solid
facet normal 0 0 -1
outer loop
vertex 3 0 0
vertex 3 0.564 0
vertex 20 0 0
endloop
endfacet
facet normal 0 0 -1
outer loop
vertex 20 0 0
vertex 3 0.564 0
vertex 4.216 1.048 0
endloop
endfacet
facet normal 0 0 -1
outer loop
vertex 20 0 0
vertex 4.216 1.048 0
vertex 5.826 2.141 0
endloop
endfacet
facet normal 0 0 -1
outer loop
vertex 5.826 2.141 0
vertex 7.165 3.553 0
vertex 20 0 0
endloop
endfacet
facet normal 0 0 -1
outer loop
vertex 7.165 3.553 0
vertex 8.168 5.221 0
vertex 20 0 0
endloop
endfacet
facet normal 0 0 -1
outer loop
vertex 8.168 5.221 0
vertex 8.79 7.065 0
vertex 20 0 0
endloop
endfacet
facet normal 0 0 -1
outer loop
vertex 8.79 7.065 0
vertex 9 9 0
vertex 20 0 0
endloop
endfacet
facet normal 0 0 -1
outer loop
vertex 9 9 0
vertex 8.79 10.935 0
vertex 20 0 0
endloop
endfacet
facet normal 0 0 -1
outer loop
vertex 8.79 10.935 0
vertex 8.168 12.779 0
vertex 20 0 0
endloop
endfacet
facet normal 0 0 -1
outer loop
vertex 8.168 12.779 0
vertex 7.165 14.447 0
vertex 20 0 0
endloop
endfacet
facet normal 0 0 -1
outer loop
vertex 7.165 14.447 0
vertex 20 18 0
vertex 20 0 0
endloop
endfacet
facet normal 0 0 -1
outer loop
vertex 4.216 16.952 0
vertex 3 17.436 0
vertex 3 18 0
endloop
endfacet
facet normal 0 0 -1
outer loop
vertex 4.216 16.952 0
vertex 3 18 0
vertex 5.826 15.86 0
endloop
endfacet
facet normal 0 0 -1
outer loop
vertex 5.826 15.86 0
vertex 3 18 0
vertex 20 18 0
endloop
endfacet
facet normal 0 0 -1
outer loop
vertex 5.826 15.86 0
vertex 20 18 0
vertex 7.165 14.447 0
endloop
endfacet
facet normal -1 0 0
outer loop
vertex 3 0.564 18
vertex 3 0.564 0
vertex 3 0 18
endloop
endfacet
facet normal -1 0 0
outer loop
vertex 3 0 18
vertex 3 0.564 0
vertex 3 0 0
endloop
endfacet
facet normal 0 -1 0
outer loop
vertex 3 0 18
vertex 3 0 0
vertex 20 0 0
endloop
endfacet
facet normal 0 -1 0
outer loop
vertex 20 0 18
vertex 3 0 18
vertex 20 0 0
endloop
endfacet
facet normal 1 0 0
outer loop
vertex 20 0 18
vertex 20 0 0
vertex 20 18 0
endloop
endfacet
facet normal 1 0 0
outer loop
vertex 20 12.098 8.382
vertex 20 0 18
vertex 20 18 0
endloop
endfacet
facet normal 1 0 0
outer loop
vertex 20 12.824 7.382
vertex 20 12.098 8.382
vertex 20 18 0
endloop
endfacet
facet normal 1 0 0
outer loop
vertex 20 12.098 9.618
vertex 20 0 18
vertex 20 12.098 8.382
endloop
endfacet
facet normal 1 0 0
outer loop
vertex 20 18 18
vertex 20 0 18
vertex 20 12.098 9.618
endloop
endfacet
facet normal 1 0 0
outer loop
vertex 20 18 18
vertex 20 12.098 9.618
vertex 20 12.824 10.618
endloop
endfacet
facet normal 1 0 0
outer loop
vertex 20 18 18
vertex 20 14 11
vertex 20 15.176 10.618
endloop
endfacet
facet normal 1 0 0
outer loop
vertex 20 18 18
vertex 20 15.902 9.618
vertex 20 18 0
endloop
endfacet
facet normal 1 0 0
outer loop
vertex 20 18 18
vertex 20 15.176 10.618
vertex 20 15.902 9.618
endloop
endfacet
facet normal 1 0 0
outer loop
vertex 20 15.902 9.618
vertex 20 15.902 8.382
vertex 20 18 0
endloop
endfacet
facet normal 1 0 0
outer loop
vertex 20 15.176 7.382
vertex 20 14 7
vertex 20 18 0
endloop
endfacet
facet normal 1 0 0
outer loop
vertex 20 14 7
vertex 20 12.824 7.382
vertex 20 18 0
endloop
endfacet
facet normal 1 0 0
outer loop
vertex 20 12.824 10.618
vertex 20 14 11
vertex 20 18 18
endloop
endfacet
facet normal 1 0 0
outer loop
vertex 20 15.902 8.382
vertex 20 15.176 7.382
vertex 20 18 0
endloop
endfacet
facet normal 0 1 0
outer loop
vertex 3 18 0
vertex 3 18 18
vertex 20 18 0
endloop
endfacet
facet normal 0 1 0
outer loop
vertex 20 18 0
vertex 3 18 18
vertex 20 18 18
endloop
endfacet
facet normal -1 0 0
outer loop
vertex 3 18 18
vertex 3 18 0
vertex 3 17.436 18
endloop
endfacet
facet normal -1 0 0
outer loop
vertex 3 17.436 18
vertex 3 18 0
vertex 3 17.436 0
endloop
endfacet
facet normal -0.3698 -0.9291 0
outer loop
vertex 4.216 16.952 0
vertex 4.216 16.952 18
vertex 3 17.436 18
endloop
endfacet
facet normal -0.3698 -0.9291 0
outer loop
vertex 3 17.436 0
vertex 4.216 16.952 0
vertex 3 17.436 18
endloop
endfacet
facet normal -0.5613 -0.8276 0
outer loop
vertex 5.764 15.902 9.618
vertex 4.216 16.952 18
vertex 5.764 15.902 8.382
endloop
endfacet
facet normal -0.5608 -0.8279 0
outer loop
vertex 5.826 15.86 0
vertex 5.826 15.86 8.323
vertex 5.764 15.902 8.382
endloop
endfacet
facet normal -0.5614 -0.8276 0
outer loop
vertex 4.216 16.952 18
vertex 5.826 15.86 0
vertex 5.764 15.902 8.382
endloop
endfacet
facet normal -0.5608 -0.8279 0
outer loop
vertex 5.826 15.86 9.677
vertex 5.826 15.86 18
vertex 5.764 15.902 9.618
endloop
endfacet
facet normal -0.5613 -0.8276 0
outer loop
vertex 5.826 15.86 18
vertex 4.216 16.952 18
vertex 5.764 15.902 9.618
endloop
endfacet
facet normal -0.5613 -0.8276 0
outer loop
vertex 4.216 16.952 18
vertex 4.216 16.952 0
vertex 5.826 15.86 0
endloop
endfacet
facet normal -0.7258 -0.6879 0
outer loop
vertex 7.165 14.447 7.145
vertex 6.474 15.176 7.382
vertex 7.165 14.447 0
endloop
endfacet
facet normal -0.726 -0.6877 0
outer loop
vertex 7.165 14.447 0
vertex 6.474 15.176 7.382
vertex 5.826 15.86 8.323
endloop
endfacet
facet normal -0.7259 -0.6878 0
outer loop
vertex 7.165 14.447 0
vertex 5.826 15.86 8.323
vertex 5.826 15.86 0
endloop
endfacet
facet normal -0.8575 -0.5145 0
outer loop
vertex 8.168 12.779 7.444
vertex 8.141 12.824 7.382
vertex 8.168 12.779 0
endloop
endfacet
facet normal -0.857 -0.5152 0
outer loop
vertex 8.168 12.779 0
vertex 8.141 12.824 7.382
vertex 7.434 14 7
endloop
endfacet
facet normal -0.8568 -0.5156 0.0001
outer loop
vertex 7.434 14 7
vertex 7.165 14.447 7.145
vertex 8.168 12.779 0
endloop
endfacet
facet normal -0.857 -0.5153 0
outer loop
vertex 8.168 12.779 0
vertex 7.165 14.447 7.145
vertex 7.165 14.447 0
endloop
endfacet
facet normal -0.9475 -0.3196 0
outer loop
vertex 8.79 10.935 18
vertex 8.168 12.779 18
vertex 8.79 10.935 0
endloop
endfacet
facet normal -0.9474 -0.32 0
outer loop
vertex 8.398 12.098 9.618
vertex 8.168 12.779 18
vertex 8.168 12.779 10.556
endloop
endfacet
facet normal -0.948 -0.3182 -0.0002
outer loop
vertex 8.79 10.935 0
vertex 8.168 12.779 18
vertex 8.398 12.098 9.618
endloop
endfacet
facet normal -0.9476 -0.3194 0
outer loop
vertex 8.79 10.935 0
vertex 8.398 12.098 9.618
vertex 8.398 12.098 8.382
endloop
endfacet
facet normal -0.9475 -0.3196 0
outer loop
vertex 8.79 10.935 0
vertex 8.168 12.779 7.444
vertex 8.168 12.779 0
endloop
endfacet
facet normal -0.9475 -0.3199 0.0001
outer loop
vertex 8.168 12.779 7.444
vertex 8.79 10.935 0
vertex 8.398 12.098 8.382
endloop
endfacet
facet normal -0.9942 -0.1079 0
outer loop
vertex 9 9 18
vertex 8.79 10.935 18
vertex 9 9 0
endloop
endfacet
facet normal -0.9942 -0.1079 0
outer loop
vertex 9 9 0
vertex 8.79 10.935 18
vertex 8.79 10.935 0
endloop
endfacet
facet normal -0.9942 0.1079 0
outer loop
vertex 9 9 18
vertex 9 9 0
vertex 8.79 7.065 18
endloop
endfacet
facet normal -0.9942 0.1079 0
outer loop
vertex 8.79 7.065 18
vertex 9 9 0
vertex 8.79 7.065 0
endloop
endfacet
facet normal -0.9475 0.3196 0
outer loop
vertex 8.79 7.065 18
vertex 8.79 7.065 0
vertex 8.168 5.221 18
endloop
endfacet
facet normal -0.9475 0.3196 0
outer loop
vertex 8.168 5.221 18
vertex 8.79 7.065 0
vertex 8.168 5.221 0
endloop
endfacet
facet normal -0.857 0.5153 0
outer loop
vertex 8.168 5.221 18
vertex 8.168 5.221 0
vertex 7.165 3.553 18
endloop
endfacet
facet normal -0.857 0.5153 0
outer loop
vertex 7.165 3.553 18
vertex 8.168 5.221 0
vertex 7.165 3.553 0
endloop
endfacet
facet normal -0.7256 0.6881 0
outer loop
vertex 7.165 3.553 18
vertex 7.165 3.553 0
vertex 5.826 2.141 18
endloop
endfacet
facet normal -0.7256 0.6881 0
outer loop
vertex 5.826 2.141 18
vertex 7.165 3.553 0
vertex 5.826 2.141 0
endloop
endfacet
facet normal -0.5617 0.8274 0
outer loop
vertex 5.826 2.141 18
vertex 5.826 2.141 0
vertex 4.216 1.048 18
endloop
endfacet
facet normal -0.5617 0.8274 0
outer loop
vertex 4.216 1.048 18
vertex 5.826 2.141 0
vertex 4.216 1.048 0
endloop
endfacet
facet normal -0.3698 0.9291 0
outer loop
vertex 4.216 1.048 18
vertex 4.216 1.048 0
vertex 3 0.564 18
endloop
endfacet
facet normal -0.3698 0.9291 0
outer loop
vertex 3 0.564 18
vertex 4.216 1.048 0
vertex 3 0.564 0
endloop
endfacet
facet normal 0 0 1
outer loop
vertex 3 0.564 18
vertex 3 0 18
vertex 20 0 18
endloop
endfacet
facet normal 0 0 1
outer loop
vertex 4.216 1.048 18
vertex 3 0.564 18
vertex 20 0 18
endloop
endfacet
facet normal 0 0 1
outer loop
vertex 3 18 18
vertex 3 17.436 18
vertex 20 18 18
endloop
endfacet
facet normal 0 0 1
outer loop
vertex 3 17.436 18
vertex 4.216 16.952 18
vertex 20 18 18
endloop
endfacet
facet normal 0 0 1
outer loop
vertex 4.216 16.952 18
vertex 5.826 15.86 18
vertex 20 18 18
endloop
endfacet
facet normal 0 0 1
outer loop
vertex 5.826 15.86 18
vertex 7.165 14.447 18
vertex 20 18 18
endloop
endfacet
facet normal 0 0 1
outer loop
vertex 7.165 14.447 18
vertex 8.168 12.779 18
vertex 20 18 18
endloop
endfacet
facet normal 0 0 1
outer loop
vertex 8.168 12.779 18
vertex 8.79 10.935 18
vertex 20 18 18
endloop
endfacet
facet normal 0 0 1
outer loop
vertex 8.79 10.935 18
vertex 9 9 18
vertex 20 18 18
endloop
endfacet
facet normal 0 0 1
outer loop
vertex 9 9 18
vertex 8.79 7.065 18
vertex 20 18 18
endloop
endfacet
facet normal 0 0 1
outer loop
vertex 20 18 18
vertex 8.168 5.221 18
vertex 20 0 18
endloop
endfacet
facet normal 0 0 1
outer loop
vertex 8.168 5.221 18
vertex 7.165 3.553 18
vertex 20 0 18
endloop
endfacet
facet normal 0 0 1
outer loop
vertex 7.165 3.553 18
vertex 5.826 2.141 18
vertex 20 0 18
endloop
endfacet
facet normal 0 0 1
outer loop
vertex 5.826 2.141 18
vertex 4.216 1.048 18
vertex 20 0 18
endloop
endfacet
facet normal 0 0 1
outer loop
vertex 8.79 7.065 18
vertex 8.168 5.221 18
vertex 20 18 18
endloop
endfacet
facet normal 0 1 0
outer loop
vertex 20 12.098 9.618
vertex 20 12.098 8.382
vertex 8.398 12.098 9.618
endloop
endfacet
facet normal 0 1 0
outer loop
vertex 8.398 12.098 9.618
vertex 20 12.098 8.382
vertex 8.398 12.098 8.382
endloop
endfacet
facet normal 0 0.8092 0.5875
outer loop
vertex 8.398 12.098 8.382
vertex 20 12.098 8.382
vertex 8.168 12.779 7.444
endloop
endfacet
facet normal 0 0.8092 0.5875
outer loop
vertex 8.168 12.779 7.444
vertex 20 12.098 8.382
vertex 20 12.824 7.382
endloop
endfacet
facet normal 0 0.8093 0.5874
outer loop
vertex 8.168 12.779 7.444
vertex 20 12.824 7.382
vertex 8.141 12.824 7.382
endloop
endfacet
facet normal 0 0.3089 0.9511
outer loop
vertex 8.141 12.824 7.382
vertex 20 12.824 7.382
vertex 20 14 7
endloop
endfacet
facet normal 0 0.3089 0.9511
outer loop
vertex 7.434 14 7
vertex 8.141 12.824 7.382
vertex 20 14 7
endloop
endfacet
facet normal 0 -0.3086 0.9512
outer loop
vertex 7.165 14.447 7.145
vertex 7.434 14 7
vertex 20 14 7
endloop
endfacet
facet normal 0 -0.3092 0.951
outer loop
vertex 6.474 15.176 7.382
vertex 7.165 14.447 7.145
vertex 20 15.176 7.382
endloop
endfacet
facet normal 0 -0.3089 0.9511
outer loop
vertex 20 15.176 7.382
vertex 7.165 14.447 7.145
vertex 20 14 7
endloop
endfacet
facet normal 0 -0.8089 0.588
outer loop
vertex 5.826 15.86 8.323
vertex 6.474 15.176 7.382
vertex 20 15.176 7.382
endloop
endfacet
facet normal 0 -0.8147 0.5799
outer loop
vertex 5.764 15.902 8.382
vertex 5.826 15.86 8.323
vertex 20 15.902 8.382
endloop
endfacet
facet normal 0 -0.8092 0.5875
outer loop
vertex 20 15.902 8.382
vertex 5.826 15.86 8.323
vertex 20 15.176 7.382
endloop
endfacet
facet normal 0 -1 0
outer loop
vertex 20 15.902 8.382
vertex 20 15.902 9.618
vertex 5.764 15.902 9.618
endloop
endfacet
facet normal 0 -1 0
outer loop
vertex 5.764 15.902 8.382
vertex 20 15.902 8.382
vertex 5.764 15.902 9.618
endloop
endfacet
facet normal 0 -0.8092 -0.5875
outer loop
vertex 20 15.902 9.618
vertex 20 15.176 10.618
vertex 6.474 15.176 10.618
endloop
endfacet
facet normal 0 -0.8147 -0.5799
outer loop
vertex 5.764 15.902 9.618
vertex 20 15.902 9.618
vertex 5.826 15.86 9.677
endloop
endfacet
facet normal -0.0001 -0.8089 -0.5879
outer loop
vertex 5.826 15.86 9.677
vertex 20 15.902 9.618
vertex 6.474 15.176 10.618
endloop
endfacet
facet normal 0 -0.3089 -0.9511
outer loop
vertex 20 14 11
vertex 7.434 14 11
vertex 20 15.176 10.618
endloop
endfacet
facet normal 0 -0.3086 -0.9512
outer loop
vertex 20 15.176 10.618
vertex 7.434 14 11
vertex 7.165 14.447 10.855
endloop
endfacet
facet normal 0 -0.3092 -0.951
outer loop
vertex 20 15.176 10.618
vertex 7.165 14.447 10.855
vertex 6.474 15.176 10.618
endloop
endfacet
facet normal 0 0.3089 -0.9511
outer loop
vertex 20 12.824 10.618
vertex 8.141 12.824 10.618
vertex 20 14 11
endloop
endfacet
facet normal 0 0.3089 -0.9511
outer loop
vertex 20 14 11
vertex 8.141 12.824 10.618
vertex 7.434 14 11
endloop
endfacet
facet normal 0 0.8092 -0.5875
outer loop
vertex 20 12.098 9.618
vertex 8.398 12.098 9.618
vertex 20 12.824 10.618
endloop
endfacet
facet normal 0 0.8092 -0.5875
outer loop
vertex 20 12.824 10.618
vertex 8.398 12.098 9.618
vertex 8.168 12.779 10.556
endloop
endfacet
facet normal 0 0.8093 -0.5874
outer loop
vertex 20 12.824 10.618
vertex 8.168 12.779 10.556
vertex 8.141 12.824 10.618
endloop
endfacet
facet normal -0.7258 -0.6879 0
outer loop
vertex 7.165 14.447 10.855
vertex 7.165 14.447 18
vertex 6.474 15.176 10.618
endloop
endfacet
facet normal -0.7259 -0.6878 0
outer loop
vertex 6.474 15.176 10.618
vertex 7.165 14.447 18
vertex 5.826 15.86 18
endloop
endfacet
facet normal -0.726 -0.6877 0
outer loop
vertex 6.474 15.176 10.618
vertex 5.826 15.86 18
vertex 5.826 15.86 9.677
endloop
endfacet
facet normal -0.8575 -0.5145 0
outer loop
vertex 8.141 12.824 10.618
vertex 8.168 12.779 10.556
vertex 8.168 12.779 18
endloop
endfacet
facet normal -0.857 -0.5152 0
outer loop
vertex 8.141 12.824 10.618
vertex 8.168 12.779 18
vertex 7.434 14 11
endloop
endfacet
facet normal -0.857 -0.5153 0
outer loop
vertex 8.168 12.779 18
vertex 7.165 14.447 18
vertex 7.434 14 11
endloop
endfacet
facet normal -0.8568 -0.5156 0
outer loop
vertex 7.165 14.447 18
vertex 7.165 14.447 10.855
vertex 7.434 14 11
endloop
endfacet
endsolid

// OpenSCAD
difference(){
cube([20,18,18]);
translate([-1,-1,-1])cube([4,20,20]);
translate([0,9,-1])cylinder(h=20,r=9);
translate([0,14,9])rotate([0,90,0])cylinder(h=22,r=2,$fn=10);
}
